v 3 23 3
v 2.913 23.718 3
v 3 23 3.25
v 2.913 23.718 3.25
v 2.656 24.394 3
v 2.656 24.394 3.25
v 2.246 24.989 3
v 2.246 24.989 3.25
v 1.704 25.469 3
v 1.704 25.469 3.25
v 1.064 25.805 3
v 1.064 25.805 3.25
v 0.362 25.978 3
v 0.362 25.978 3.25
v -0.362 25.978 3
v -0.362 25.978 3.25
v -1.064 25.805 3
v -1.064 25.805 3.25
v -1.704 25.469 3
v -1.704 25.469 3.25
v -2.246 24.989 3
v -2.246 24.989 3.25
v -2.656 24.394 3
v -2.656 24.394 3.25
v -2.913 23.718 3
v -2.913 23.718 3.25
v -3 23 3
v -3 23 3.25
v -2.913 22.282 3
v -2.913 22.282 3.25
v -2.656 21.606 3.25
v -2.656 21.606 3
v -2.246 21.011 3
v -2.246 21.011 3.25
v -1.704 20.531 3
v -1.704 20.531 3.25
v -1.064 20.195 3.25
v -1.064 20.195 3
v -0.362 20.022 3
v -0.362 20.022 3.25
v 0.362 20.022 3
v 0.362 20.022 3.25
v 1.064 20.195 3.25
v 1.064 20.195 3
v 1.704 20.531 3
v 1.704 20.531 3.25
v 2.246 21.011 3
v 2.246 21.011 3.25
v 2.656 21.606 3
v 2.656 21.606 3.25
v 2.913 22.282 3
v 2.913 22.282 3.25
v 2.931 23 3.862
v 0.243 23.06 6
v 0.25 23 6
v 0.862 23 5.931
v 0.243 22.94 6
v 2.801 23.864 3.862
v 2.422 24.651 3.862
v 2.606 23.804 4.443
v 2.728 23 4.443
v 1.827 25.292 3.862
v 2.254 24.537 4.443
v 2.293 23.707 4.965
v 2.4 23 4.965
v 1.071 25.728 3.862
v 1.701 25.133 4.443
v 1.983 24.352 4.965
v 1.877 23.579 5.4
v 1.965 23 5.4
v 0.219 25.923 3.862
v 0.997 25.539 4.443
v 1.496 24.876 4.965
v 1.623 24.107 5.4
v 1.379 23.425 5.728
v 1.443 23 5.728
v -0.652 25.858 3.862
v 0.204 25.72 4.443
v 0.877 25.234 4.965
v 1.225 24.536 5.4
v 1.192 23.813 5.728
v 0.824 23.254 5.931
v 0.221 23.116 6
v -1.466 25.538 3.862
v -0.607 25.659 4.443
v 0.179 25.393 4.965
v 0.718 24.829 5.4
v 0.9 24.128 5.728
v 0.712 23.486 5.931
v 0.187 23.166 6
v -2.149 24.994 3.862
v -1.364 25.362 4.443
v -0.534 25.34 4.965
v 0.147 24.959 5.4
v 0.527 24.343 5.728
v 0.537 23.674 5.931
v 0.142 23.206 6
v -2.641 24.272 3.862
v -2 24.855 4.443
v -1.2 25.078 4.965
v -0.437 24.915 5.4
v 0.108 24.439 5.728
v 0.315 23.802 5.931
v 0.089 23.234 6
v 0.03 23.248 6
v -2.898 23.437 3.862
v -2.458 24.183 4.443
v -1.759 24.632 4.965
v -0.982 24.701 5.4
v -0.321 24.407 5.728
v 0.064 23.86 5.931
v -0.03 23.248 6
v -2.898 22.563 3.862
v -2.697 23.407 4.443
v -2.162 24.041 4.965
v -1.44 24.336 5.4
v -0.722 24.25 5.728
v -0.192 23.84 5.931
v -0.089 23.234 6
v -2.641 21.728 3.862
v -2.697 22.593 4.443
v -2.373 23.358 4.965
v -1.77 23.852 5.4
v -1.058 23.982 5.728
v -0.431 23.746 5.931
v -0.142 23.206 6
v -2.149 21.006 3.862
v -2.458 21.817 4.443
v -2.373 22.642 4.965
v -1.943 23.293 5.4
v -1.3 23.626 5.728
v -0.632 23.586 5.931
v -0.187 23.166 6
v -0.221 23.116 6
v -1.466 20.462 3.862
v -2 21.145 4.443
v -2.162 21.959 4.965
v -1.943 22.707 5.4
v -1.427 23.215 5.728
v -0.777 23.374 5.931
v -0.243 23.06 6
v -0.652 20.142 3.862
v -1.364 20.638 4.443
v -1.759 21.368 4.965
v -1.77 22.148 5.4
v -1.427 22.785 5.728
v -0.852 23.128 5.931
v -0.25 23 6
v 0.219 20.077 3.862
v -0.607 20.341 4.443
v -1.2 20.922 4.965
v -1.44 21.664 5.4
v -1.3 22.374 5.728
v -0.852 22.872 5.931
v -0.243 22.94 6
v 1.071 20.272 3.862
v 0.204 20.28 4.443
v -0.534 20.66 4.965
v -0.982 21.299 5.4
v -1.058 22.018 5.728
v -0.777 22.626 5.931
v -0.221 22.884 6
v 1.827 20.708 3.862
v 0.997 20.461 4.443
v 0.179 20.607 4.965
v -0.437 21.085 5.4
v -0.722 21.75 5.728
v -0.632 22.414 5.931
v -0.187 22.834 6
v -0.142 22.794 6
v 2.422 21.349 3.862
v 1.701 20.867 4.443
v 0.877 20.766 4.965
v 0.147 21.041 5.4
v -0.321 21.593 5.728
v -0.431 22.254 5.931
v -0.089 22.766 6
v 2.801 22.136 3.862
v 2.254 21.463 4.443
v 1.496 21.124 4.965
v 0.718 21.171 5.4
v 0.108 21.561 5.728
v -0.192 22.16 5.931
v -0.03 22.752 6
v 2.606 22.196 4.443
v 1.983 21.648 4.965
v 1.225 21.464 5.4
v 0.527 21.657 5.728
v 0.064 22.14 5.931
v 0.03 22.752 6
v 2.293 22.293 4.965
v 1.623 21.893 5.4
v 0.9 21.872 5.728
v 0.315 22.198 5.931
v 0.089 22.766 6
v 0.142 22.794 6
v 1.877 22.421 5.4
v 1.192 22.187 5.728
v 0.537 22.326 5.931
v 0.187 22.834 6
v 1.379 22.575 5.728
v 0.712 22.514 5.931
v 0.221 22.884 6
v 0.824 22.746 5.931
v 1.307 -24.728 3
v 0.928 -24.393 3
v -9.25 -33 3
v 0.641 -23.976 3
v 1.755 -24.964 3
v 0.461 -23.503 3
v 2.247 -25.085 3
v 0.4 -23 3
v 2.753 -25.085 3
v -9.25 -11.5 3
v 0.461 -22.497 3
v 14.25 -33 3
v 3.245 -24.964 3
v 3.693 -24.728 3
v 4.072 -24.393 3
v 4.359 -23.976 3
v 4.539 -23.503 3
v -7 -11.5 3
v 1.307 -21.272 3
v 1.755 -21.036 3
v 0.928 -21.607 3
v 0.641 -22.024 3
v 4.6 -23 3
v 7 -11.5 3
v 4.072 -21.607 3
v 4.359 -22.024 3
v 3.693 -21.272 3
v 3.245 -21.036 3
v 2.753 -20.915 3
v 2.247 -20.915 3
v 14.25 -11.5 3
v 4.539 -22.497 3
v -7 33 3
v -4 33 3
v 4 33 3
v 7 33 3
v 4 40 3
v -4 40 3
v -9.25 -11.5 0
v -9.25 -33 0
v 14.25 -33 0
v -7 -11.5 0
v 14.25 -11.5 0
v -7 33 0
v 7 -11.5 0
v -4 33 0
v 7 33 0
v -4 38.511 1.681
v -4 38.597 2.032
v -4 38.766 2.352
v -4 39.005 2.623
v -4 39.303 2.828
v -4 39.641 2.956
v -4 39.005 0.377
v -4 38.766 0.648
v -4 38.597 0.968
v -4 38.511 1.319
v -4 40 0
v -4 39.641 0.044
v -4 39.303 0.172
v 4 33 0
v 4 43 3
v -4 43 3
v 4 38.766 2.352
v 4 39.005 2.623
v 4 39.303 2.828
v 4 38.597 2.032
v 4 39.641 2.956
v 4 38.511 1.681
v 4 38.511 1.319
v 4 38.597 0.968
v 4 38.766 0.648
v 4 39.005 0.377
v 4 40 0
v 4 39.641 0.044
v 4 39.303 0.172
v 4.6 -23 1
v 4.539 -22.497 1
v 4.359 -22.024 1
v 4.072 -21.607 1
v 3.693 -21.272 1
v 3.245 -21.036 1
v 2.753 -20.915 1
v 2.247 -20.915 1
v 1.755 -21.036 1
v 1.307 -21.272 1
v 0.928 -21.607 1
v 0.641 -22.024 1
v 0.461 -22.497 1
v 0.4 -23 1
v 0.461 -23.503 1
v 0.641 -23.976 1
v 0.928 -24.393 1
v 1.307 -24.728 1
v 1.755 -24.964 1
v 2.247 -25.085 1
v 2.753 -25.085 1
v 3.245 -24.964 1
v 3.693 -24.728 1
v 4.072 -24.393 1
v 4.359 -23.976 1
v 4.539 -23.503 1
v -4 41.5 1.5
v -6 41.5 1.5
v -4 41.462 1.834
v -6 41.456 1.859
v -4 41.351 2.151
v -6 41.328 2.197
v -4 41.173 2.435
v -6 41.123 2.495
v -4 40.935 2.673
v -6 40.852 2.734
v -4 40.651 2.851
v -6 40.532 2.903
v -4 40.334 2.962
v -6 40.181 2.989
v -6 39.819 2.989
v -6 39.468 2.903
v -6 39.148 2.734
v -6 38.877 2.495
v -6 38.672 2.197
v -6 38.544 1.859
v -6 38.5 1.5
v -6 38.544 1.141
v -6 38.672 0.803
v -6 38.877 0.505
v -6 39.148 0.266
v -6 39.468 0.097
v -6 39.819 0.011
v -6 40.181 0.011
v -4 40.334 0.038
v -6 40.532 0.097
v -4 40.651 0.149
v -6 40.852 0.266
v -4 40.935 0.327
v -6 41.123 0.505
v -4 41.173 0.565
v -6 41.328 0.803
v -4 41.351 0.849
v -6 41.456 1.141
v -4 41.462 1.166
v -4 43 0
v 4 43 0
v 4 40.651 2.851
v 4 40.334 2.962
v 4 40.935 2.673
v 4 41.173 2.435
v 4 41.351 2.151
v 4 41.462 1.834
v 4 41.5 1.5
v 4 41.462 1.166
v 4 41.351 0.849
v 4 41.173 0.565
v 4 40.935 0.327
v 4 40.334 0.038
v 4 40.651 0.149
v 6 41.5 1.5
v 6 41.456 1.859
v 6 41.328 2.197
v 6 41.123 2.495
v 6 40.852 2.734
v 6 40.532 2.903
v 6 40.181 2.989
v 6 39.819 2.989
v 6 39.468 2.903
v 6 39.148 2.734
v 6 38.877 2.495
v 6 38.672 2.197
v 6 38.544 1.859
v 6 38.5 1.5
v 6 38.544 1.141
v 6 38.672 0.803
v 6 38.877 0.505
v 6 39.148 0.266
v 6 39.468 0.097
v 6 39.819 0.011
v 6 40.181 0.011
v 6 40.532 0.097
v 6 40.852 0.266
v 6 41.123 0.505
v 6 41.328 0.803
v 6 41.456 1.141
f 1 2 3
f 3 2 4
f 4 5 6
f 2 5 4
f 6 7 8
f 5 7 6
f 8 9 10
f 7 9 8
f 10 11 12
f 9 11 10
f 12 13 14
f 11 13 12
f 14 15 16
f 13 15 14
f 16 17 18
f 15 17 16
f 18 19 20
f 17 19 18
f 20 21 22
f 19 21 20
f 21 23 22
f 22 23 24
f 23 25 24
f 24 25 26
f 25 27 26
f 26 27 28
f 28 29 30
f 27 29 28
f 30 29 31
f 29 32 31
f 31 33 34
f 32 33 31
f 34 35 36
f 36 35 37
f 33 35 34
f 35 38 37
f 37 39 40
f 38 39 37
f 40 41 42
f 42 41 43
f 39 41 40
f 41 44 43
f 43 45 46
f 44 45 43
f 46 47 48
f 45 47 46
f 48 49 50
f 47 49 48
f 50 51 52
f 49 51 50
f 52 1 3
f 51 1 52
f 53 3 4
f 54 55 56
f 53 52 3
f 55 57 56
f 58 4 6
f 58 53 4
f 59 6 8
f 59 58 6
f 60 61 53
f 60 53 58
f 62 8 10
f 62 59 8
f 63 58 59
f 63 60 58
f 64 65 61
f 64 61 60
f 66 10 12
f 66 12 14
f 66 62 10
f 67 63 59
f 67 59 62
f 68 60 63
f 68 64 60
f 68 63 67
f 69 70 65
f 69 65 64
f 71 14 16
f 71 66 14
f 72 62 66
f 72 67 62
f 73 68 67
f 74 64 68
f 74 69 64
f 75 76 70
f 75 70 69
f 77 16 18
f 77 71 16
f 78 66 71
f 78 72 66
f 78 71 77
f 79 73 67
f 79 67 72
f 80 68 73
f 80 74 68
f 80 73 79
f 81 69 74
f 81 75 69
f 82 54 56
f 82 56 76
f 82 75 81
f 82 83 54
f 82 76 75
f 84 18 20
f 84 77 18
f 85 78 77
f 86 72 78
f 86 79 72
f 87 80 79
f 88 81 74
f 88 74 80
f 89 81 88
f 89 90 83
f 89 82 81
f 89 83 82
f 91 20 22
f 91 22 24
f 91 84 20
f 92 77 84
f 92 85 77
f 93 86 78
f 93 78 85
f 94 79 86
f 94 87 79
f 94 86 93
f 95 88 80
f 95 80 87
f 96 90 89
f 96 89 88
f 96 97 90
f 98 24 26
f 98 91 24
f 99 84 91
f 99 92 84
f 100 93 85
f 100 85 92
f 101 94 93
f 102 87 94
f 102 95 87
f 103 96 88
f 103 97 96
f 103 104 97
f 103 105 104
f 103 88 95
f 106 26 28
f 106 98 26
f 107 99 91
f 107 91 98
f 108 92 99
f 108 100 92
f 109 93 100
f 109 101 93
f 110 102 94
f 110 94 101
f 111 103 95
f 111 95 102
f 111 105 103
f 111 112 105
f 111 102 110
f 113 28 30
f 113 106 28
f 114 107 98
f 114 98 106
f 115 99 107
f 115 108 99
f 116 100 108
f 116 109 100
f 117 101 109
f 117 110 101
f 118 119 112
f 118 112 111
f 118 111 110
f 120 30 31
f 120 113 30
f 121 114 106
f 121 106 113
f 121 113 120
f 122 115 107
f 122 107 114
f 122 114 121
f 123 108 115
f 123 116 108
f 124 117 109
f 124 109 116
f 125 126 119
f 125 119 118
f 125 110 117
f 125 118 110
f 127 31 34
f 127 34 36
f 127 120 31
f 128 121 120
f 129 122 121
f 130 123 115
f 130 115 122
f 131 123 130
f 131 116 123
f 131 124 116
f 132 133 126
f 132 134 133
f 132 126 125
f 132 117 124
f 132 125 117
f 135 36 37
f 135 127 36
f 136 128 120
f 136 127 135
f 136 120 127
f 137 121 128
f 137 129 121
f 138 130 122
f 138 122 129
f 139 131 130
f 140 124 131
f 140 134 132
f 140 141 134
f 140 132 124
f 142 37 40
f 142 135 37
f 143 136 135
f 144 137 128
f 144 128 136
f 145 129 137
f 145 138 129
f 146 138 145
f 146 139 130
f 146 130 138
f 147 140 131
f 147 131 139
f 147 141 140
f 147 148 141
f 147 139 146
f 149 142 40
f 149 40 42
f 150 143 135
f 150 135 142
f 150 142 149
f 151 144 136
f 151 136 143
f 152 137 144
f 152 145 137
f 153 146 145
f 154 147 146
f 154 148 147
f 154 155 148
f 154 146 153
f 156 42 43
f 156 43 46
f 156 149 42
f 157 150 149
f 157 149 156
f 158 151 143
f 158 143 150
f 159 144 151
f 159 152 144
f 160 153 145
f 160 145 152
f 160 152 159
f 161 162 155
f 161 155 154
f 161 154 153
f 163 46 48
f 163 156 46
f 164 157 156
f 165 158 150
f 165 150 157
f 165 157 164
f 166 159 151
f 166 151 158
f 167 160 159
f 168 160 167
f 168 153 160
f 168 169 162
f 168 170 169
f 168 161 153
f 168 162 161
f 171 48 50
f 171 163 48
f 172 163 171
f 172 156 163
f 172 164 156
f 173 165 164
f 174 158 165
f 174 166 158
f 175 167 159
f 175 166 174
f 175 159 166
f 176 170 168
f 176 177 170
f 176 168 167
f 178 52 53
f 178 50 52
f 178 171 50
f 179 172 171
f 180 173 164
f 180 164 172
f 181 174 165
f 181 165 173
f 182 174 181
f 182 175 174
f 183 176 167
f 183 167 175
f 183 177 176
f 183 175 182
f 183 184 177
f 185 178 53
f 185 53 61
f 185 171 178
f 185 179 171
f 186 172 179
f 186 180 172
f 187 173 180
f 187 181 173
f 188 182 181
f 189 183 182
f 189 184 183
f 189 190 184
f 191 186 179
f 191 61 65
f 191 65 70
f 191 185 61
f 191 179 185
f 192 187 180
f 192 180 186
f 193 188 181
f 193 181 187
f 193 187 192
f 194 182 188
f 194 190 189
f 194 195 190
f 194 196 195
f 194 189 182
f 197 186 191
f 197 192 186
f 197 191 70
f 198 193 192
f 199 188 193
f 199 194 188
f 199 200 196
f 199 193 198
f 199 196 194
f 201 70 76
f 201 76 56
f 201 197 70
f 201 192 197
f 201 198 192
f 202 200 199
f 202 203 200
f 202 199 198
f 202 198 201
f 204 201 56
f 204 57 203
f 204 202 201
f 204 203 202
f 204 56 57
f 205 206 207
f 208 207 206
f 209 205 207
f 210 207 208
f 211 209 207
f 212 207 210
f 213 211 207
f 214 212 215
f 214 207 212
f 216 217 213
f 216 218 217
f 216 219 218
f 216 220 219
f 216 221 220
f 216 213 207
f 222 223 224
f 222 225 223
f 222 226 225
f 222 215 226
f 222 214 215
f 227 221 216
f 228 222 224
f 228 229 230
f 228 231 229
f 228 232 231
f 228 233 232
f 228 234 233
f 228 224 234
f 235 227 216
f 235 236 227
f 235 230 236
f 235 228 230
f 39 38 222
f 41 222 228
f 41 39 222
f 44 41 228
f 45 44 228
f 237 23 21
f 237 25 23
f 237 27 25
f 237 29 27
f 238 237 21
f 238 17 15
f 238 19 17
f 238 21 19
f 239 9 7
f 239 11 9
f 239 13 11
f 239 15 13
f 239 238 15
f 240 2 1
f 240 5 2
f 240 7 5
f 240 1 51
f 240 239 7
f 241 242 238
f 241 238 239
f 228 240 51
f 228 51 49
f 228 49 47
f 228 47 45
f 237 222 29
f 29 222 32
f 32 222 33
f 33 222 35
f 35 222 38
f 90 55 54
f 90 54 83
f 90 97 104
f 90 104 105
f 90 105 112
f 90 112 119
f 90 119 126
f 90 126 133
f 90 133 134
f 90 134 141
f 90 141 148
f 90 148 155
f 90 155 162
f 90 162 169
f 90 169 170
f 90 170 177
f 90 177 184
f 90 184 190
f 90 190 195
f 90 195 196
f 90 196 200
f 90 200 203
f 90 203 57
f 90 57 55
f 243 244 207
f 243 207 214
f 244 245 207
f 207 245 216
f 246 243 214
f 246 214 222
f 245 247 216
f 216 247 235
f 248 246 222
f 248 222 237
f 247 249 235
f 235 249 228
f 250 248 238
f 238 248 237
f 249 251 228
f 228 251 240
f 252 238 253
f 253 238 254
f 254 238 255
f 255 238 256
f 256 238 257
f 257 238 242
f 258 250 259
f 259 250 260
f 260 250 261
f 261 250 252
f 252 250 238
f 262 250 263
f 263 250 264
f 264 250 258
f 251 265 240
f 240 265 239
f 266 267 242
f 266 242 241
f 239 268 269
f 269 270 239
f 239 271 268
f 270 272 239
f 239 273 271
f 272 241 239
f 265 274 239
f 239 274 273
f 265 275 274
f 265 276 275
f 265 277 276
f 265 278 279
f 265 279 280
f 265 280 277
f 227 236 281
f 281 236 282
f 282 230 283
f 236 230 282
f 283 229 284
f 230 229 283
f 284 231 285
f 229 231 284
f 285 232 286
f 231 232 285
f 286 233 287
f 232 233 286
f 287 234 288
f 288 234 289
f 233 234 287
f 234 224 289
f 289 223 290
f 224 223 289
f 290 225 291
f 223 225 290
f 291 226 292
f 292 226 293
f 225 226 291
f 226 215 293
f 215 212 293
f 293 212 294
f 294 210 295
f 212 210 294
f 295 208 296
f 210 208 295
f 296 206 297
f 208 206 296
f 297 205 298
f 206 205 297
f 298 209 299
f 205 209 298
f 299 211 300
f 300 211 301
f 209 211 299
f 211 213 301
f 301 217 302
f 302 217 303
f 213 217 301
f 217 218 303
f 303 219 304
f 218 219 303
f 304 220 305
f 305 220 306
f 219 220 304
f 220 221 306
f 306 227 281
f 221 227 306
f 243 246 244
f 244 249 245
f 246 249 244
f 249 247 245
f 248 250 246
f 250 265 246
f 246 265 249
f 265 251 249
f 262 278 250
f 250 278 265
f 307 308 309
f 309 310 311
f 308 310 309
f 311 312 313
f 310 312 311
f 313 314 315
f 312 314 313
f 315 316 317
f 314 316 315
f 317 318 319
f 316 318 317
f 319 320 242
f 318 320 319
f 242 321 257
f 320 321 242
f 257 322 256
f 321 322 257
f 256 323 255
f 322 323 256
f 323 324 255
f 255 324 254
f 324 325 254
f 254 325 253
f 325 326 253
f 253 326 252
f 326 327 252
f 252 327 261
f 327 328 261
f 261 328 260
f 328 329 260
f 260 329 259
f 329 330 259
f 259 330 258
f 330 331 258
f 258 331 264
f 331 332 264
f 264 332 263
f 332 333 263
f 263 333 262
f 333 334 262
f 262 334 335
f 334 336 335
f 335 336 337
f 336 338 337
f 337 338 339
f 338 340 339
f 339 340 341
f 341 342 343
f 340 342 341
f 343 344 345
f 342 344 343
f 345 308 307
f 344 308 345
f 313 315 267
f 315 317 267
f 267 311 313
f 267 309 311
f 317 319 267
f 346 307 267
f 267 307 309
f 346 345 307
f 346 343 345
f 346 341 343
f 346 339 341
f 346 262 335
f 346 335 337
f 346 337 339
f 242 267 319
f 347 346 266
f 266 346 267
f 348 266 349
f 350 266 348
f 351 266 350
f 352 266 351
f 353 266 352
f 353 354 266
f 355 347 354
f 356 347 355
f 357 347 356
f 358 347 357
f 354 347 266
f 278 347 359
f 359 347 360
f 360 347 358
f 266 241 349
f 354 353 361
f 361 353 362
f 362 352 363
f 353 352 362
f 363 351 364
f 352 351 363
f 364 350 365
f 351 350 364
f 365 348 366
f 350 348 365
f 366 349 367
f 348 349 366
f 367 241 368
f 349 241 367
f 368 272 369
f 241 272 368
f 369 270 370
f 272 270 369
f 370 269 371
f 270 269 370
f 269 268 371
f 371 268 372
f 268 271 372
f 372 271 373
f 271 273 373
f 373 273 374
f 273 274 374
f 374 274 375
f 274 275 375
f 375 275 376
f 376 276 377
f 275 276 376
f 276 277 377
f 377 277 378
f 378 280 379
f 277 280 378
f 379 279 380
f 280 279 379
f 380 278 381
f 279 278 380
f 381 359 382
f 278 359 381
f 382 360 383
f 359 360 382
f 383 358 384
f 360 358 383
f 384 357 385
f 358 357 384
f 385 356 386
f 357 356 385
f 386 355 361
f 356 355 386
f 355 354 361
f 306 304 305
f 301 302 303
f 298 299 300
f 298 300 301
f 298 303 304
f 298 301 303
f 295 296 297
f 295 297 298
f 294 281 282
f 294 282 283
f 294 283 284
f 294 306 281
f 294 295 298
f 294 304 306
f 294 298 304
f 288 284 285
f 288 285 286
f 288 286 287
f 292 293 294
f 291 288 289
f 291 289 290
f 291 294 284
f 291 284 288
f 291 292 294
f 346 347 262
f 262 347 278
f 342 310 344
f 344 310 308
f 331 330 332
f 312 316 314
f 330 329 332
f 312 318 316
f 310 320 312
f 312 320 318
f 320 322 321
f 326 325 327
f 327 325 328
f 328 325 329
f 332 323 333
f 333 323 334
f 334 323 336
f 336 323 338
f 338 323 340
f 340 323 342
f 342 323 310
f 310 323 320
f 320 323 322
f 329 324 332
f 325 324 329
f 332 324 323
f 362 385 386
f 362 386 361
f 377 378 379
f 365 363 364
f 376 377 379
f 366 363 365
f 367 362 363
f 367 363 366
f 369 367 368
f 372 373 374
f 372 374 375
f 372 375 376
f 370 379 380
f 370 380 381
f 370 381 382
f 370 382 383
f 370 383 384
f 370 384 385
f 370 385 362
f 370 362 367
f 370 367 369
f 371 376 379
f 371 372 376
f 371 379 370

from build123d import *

# Parameters (mm, degrees)
PAD_DEPTH    = 3
SKETCH001_R  = 1.5
PAD001_DEPTH = 6
SKETCH002_R  = 2.1
POCKET_DEPTH = 2
SKETCH003_R  = 3
PAD002_DEPTH = 3
FILLET_R     = 2.75


with BuildPart() as part:
    # Sketch → Pad (new body)
    with BuildSketch(Plane.XY):
        Polygon((-9.25, -33), (14.25, -33), (14.25, -11.5), (7, -11.5), (7, 33), (4, 33), (4, 43), (-4, 43), (-4, 33), (-7, 33), (-7, -11.5), (-9.25, -11.5), align=None)
    extrude(amount=PAD_DEPTH)

    # Sketch001 → Pad001 (join, symmetric)
    with BuildSketch(Plane.YZ):
        with Locations((40, 1.5)):
            Circle(SKETCH001_R)
    extrude(amount=PAD001_DEPTH, both=True)

    # Sketch002 (on Face5 of Pad001) → Pocket (cut)
    with BuildSketch(Plane.XY.offset(3)):
        with Locations((2.5, -23)):
            Circle(SKETCH002_R)
    extrude(amount=-POCKET_DEPTH, mode=Mode.SUBTRACT)

    # Sketch003 (on Face5 of Pocket) → Pad002 (join)
    with BuildSketch(Plane.XY.offset(3)):
        with Locations((0, 23)):
            Circle(SKETCH003_R)
    extrude(amount=PAD002_DEPTH)

    # Fillet
    fillet_edges = [part.edges().sort_by_distance(p)[0] for p in [
        (-3, 23, 6),
    ]]
    fillet(fillet_edges, radius=FILLET_R)


solid = part.part
